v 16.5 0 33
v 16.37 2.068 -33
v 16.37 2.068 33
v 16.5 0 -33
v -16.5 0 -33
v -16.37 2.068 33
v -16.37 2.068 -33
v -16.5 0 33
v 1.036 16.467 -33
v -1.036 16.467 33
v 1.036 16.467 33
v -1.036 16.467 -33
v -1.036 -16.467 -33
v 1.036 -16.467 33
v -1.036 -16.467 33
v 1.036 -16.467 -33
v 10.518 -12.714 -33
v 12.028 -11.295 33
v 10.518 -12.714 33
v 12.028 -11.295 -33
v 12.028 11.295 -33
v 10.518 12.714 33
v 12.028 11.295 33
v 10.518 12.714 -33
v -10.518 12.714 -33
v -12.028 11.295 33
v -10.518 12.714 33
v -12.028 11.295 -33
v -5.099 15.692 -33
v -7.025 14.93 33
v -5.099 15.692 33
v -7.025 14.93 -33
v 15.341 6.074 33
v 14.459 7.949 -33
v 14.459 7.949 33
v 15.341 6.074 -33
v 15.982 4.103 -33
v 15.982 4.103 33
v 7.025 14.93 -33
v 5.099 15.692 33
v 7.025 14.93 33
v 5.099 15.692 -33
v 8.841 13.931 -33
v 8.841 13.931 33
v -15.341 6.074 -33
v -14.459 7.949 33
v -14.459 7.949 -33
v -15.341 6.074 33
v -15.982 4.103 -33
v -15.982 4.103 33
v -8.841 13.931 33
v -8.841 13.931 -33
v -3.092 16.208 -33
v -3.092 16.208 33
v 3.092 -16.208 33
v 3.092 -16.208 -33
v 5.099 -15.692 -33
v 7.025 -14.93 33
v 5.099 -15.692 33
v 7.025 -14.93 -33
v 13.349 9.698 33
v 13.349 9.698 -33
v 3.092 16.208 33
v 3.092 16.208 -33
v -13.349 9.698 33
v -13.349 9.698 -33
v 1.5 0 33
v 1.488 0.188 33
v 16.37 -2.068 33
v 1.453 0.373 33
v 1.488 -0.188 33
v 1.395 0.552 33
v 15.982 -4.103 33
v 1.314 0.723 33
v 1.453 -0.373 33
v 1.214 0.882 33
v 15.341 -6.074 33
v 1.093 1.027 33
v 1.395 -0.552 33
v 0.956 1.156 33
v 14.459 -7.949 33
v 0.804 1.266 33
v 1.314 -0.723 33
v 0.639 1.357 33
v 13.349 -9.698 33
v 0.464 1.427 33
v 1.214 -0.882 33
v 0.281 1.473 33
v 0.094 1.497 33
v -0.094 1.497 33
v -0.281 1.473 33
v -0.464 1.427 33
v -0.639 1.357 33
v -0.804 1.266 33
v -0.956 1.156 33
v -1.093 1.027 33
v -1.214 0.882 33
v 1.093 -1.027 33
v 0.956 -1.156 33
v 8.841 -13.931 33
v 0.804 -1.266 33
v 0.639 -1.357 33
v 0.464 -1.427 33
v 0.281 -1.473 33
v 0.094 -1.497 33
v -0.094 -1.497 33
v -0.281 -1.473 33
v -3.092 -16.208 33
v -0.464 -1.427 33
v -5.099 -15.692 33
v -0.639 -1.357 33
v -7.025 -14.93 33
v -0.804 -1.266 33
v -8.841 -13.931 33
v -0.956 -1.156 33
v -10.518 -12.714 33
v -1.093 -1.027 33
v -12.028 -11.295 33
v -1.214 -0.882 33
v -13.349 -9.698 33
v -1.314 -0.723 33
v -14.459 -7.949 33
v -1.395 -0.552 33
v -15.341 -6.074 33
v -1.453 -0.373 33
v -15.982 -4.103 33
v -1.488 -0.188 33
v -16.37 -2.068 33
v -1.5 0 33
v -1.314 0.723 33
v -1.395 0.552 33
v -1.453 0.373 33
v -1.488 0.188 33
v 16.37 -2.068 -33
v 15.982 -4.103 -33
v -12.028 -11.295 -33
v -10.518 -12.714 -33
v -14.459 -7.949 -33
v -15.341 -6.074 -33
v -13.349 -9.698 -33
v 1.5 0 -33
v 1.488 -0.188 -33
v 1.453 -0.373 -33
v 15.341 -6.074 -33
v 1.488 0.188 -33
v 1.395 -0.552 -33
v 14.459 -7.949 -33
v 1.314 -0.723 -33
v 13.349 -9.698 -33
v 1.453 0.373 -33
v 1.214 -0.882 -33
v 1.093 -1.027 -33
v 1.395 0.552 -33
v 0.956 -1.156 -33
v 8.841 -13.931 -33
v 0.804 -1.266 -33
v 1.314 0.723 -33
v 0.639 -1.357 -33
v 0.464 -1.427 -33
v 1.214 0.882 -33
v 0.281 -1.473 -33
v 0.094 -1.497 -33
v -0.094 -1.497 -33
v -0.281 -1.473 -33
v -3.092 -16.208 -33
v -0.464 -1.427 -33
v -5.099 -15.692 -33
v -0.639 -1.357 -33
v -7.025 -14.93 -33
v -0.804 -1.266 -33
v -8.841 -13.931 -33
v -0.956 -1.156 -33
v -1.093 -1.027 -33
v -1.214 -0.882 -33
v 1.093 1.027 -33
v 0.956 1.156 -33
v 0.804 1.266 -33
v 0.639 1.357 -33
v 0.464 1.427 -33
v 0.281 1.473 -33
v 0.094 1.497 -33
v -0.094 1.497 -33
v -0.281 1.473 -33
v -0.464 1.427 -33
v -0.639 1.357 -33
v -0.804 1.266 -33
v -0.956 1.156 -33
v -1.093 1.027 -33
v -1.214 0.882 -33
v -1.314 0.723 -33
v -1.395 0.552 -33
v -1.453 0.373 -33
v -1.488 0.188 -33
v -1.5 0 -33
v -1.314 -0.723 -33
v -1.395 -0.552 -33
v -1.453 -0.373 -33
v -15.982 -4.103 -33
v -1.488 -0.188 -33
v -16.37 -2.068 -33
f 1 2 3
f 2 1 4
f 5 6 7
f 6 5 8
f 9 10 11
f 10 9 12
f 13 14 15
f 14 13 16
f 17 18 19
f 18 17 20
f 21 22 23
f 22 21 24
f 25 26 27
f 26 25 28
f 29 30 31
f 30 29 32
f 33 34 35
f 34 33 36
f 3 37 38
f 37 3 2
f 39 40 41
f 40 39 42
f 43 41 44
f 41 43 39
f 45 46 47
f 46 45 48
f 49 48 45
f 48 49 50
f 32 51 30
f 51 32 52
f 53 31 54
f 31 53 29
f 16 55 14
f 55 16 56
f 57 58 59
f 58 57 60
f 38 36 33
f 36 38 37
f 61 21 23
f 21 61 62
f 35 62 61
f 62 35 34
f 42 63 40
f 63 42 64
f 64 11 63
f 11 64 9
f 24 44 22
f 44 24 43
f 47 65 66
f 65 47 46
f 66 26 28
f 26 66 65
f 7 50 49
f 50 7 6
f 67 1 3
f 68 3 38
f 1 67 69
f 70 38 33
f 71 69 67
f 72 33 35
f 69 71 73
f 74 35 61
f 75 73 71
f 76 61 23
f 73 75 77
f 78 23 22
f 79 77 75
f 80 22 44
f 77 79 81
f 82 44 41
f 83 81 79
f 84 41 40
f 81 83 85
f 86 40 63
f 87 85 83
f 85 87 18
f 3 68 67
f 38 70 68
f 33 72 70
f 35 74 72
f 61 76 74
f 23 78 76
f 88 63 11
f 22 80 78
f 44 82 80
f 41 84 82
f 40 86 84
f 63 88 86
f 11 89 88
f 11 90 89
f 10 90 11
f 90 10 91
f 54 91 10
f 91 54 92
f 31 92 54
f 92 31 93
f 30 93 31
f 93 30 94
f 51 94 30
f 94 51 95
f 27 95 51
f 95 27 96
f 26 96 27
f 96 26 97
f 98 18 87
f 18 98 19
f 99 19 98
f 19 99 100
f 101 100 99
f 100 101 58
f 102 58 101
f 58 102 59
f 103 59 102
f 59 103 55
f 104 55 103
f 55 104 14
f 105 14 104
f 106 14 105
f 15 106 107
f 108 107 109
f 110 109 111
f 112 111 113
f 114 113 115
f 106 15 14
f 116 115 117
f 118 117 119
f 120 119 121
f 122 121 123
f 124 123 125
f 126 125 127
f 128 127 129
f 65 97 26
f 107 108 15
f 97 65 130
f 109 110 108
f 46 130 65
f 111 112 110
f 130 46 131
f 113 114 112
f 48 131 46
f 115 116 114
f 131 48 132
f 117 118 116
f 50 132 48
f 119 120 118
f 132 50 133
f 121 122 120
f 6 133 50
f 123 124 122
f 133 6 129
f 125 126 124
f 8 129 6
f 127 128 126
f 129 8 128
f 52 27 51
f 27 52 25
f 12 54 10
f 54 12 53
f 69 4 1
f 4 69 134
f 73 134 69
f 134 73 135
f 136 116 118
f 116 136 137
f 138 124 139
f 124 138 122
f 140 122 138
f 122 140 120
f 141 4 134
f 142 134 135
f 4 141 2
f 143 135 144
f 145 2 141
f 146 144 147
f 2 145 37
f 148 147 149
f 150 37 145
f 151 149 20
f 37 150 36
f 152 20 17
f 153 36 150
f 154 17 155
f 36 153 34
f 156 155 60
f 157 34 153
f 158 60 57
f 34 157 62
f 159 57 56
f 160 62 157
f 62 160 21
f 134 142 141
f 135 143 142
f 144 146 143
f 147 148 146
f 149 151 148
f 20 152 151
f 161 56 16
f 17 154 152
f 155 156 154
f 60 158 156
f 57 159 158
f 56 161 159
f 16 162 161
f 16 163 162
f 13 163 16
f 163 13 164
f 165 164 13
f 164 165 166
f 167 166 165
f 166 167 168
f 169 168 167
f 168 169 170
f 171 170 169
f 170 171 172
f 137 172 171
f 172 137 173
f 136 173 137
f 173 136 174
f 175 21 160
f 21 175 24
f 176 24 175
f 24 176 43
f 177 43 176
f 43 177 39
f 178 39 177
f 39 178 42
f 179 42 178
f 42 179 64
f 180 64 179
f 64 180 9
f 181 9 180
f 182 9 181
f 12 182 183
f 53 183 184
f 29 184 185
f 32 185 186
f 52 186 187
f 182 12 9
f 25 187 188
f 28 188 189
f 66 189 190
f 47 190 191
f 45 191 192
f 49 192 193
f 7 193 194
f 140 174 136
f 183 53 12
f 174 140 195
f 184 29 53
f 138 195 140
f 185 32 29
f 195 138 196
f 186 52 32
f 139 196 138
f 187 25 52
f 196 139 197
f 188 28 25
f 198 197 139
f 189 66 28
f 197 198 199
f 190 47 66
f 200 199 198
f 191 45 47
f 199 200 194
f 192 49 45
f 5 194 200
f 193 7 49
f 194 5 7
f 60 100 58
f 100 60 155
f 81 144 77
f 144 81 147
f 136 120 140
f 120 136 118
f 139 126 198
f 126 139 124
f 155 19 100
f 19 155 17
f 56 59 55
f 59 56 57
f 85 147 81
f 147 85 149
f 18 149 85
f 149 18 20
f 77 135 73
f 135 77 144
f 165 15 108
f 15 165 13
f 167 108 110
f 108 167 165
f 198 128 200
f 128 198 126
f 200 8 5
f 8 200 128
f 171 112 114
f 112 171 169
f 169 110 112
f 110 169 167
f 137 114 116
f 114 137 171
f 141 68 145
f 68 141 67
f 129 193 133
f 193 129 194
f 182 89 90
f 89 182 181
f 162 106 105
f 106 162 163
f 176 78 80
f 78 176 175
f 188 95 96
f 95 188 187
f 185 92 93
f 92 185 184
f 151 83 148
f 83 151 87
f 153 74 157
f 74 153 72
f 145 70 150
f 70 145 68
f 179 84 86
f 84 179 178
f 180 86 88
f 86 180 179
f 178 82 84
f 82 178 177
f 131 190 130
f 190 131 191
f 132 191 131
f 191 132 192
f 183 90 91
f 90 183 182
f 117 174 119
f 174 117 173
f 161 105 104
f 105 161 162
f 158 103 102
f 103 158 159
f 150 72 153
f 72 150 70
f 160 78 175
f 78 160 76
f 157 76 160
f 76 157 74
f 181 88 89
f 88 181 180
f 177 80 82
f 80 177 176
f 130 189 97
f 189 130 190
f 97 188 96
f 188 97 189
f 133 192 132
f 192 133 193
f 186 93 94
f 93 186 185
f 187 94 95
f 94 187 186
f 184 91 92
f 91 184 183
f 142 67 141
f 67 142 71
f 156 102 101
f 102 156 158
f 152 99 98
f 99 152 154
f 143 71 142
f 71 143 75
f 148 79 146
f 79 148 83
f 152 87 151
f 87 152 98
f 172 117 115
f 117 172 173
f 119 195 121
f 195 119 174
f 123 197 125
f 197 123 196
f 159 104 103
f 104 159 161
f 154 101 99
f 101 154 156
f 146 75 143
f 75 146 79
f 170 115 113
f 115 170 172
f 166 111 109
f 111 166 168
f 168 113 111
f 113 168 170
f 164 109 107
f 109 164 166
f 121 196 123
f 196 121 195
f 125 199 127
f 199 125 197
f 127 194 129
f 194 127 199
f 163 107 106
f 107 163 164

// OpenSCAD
$fn = 50;


difference() {
	union() {
		translate(v = [0, 0, -33.0000000000]) {
			cylinder(h = 66, r = 16.5000000000);
		}
	}
	union() {
		translate(v = [0, 0, -100.0000000000]) {
			cylinder(h = 200, r = 1.5000000000);
		}
	}
}
